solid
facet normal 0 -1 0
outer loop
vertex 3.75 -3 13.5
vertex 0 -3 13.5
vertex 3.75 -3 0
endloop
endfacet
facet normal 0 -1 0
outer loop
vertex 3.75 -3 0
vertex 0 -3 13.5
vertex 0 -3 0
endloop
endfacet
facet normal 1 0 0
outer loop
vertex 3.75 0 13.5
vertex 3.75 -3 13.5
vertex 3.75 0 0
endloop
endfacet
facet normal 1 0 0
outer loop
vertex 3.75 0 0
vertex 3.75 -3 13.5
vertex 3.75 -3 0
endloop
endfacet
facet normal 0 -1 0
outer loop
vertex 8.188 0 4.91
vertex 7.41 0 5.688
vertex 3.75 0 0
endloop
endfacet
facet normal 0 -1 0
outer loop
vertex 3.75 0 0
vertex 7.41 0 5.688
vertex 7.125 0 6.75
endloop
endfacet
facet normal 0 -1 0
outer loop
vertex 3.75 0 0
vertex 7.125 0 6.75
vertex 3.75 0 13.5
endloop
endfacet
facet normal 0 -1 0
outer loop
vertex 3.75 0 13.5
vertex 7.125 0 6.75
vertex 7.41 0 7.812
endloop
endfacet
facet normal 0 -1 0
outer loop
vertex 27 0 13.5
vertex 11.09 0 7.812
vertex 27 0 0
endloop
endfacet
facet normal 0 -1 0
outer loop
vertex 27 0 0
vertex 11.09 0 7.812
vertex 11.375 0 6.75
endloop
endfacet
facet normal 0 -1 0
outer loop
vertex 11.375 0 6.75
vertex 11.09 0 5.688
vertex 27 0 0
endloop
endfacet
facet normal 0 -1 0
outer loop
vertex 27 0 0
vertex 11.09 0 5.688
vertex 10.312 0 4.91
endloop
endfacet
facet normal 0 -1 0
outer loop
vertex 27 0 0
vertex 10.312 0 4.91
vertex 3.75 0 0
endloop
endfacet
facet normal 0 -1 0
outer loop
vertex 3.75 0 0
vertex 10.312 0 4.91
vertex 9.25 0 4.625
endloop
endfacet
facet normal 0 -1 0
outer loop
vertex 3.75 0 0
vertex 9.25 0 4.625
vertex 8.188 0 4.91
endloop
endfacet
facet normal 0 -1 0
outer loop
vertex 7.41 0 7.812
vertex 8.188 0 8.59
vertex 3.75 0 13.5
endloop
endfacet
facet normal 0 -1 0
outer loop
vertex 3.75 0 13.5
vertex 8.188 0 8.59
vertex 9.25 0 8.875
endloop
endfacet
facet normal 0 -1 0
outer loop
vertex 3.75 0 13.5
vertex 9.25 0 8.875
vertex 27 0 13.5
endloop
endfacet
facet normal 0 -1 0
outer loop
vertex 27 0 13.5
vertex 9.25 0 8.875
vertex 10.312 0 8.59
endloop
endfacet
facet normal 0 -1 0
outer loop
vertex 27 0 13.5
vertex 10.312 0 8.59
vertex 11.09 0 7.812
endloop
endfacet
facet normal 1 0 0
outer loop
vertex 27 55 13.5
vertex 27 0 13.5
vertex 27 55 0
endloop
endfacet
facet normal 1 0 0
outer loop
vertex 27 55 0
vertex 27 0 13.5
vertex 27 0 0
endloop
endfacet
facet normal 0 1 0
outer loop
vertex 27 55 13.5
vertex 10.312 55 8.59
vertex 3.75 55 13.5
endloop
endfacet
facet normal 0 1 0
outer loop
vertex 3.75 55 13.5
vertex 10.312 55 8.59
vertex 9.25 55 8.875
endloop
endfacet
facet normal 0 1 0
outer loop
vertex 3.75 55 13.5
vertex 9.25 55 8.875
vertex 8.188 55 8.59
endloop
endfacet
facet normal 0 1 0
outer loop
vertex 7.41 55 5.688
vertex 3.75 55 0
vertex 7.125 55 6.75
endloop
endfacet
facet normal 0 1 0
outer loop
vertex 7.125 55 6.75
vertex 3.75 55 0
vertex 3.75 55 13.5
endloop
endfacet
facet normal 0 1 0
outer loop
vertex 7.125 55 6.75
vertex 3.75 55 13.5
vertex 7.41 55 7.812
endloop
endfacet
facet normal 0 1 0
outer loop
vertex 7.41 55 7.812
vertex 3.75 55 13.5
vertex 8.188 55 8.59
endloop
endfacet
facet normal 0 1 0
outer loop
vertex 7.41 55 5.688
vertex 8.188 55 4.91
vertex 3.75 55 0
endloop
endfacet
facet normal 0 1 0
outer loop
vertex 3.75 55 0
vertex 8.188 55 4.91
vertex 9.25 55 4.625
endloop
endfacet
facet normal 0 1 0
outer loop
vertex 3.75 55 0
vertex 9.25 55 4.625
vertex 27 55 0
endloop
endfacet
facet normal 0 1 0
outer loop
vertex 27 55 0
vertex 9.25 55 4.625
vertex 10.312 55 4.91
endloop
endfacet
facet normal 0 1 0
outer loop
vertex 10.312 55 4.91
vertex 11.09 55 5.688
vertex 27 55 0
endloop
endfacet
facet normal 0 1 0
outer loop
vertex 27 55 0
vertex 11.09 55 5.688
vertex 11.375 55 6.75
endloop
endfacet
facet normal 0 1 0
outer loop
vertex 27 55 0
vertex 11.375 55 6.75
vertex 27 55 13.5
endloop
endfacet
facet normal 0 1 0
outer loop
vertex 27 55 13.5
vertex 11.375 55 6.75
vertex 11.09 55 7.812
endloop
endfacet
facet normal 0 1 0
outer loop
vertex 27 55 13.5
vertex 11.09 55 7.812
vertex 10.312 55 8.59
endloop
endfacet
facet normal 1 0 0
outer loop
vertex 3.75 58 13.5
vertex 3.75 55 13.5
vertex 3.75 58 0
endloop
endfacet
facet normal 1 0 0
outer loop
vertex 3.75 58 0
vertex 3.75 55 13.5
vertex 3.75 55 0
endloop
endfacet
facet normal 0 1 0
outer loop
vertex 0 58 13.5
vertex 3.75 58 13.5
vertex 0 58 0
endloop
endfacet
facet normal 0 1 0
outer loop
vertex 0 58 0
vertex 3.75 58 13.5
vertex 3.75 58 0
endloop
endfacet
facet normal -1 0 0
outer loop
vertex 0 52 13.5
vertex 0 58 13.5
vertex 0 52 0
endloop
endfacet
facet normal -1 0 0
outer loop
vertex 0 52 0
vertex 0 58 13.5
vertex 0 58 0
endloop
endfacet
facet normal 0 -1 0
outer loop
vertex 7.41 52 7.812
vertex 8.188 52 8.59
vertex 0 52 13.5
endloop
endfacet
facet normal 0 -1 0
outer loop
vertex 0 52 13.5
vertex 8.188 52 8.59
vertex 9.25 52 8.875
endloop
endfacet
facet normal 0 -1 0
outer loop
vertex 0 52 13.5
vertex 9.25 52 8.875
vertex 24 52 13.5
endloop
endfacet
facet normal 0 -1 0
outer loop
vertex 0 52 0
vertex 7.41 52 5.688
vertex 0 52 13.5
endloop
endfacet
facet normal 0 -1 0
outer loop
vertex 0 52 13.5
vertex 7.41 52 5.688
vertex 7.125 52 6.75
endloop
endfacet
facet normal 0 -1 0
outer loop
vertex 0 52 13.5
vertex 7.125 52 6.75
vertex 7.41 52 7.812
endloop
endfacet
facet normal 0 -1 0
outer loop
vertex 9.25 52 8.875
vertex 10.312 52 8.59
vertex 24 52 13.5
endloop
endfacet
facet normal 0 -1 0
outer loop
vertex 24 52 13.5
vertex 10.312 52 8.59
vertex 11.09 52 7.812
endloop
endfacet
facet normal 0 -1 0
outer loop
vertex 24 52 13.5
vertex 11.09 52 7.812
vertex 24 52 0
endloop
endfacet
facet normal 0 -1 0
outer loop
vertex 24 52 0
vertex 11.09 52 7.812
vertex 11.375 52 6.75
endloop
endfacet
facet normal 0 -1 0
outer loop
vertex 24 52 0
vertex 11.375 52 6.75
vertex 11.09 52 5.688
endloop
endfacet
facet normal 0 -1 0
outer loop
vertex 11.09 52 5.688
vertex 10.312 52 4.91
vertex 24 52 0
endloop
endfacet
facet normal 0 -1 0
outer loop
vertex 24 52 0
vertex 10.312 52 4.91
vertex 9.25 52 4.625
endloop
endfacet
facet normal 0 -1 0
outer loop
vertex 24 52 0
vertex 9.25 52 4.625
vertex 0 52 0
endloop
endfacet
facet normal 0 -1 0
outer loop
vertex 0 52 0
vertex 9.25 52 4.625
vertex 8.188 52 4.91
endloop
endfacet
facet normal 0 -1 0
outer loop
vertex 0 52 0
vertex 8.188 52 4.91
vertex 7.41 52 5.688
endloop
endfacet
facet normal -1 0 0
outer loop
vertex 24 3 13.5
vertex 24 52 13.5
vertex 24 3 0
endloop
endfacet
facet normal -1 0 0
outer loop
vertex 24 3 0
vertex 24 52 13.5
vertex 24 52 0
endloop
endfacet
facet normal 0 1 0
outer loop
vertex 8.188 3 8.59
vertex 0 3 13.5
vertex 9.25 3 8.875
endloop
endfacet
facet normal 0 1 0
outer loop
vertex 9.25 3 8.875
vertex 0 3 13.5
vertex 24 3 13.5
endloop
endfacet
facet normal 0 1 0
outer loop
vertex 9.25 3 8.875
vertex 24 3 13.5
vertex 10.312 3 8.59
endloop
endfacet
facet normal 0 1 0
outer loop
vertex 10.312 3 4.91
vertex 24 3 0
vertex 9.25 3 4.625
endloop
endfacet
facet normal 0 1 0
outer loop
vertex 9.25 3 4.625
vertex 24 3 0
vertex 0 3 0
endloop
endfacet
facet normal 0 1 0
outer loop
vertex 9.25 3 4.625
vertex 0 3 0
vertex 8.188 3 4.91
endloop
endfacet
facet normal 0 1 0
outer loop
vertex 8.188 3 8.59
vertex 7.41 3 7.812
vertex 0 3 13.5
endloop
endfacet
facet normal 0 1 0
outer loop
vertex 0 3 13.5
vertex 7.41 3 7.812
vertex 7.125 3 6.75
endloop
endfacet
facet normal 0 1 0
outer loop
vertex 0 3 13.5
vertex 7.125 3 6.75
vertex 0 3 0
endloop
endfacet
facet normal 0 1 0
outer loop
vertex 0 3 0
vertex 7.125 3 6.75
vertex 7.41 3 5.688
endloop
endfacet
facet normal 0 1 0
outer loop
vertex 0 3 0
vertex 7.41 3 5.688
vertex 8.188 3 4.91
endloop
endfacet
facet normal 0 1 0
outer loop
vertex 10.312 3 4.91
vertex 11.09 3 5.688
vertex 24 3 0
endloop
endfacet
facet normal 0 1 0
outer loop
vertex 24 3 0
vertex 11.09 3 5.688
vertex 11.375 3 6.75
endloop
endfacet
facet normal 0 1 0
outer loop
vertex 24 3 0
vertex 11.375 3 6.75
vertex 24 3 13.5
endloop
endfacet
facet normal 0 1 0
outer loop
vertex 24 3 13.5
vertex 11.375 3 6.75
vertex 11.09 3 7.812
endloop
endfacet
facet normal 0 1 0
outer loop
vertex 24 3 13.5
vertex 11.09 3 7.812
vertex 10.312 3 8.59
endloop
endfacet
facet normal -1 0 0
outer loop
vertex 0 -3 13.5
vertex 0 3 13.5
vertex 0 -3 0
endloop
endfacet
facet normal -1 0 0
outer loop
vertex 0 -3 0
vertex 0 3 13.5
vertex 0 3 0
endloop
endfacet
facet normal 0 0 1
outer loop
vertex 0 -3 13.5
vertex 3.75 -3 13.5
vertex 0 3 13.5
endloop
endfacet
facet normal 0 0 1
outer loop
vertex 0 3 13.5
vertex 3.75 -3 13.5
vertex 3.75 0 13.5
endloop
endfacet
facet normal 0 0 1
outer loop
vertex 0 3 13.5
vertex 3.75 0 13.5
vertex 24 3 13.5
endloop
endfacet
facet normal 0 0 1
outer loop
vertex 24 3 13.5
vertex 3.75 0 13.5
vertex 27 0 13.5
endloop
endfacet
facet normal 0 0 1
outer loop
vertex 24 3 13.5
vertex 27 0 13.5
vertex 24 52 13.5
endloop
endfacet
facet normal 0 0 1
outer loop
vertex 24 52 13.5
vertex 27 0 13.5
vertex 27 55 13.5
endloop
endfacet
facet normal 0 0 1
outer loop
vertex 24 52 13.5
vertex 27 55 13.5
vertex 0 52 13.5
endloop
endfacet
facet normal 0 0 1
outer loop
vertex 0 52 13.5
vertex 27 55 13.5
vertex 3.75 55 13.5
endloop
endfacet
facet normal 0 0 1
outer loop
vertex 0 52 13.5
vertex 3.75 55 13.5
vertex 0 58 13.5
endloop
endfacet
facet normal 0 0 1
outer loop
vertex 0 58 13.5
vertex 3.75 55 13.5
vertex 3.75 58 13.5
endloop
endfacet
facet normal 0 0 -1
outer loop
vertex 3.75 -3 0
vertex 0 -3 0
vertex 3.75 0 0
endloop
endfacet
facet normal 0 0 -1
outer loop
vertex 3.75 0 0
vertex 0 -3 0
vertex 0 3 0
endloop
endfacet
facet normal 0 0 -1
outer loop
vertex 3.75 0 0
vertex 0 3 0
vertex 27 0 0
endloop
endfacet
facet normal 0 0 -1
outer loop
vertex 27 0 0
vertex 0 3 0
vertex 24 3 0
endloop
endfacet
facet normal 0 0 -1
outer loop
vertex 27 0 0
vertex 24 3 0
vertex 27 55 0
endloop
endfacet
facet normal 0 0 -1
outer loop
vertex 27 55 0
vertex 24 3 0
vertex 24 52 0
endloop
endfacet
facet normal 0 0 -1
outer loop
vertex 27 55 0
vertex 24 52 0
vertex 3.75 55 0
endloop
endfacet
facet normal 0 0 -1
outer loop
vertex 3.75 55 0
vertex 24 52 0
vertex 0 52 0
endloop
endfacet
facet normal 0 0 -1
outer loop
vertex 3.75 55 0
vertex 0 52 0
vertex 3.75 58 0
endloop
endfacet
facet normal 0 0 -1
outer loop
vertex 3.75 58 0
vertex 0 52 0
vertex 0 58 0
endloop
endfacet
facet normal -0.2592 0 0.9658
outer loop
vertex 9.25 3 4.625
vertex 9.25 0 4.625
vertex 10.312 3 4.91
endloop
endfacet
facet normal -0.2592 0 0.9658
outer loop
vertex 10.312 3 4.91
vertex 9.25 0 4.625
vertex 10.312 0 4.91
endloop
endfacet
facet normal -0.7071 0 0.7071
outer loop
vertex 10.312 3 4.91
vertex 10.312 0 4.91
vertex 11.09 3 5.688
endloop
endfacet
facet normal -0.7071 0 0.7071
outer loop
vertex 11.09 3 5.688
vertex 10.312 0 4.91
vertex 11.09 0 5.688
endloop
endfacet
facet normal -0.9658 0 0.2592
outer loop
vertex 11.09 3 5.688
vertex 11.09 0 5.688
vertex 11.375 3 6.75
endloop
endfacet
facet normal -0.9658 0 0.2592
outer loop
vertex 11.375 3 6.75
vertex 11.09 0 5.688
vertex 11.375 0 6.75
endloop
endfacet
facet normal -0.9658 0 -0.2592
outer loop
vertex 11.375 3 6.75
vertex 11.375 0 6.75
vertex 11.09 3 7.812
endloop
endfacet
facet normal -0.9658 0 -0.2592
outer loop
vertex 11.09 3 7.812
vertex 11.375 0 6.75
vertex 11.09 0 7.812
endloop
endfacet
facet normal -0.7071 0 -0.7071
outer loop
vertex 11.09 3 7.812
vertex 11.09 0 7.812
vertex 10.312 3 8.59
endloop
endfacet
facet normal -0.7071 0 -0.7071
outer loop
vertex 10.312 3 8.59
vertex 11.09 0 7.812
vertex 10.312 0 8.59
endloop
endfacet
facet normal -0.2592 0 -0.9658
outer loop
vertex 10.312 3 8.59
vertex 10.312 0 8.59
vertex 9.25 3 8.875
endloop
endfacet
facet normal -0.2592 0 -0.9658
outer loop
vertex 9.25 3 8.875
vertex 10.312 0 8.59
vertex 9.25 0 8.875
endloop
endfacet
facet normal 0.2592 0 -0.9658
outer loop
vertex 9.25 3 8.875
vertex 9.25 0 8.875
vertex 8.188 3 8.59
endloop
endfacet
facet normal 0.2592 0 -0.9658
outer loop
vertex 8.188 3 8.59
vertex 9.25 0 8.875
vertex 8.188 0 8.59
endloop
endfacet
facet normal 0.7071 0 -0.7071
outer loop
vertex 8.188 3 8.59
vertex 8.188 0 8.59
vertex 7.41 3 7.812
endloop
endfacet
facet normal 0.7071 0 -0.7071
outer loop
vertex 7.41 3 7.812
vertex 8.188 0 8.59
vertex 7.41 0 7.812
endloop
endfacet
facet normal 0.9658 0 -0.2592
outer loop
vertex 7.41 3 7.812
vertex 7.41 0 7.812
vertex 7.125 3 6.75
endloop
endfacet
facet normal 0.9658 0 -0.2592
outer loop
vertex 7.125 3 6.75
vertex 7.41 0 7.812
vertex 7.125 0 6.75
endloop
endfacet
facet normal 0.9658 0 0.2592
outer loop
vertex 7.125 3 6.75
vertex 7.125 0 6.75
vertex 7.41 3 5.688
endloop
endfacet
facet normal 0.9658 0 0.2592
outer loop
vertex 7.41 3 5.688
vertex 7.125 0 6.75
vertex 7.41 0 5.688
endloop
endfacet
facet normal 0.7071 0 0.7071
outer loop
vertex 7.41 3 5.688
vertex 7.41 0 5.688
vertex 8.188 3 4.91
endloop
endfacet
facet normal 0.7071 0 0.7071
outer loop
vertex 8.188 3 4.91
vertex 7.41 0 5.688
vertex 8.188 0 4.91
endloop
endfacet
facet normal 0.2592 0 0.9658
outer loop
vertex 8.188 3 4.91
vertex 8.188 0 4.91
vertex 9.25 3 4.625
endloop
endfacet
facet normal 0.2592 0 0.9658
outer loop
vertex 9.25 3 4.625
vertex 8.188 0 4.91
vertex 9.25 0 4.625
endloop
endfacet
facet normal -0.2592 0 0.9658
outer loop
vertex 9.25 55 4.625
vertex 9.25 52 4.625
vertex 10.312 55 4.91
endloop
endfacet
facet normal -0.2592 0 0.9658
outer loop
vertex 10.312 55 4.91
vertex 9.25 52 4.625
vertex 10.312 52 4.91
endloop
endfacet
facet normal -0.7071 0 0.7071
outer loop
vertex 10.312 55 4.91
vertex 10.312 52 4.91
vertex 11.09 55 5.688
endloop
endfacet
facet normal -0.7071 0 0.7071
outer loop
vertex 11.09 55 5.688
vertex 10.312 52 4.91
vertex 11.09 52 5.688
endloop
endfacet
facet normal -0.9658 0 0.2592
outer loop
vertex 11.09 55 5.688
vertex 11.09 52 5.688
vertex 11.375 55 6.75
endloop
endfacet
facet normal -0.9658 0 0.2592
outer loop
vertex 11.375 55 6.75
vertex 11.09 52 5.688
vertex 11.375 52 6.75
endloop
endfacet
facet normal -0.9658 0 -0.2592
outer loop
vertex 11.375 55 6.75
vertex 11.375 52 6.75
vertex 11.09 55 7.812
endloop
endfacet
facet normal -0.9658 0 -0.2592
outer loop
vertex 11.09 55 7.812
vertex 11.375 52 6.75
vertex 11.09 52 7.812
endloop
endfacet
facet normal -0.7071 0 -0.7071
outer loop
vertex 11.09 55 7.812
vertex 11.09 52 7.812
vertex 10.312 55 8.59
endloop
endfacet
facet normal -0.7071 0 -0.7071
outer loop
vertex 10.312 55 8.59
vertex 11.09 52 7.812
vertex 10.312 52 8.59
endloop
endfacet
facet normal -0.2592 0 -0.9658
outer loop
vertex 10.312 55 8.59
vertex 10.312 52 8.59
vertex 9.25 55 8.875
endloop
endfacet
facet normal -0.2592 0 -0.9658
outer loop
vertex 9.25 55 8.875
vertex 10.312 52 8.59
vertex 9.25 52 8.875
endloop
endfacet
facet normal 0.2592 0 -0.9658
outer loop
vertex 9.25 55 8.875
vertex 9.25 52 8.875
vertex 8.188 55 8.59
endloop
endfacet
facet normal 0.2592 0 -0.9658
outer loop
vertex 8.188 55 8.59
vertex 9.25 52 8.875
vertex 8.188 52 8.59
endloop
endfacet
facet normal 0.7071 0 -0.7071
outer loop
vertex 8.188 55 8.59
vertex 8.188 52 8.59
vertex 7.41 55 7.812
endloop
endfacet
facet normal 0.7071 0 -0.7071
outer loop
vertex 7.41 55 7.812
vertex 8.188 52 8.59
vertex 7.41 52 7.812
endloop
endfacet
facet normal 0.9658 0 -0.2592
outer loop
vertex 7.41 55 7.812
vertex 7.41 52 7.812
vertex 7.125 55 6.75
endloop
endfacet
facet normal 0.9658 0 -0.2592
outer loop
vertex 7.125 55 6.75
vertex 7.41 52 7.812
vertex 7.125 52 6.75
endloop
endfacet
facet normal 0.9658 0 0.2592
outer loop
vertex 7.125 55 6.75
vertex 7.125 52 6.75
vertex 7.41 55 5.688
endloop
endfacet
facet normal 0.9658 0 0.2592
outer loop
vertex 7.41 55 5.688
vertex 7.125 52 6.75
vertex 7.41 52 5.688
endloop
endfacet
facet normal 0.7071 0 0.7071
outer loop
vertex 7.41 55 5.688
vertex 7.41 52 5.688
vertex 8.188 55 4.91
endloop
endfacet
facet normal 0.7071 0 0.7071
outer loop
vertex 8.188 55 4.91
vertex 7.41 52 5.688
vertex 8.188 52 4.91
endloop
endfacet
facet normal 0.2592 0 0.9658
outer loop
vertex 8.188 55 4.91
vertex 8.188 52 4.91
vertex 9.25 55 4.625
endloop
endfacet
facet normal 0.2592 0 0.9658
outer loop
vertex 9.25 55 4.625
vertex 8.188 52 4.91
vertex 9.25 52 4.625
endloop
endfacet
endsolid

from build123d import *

# Parameters (mm, degrees)
SALIENTE_EXTRUIR1_DEPTH = 13.5
CROQUIS4_R              = 2.125
CORTAR_EXTRUIR1_DEPTH   = 76


with BuildPart() as part:
    # Croquis1 → Saliente-Extruir1 (new body)
    with BuildSketch(Plane.XY):
        Polygon((3.75, 0), (27, 0), (27, 55), (3.75, 55), (3.75, 58), (0, 58), (0, 55), (0, 52), (24, 52), (24, 3), (0, 3), (0, 0), (0, -3), (3.75, -3), align=None)
    extrude(amount=SALIENTE_EXTRUIR1_DEPTH)

    # Croquis4 → Cortar-Extruir1 (cut)
    with BuildSketch(Plane.XZ):
        with Locations(Location((9.25, 6.75, 0), (0, 0, 270))):
            Circle(CROQUIS4_R)
    extrude(amount=-CORTAR_EXTRUIR1_DEPTH, mode=Mode.SUBTRACT)


solid = part.part
